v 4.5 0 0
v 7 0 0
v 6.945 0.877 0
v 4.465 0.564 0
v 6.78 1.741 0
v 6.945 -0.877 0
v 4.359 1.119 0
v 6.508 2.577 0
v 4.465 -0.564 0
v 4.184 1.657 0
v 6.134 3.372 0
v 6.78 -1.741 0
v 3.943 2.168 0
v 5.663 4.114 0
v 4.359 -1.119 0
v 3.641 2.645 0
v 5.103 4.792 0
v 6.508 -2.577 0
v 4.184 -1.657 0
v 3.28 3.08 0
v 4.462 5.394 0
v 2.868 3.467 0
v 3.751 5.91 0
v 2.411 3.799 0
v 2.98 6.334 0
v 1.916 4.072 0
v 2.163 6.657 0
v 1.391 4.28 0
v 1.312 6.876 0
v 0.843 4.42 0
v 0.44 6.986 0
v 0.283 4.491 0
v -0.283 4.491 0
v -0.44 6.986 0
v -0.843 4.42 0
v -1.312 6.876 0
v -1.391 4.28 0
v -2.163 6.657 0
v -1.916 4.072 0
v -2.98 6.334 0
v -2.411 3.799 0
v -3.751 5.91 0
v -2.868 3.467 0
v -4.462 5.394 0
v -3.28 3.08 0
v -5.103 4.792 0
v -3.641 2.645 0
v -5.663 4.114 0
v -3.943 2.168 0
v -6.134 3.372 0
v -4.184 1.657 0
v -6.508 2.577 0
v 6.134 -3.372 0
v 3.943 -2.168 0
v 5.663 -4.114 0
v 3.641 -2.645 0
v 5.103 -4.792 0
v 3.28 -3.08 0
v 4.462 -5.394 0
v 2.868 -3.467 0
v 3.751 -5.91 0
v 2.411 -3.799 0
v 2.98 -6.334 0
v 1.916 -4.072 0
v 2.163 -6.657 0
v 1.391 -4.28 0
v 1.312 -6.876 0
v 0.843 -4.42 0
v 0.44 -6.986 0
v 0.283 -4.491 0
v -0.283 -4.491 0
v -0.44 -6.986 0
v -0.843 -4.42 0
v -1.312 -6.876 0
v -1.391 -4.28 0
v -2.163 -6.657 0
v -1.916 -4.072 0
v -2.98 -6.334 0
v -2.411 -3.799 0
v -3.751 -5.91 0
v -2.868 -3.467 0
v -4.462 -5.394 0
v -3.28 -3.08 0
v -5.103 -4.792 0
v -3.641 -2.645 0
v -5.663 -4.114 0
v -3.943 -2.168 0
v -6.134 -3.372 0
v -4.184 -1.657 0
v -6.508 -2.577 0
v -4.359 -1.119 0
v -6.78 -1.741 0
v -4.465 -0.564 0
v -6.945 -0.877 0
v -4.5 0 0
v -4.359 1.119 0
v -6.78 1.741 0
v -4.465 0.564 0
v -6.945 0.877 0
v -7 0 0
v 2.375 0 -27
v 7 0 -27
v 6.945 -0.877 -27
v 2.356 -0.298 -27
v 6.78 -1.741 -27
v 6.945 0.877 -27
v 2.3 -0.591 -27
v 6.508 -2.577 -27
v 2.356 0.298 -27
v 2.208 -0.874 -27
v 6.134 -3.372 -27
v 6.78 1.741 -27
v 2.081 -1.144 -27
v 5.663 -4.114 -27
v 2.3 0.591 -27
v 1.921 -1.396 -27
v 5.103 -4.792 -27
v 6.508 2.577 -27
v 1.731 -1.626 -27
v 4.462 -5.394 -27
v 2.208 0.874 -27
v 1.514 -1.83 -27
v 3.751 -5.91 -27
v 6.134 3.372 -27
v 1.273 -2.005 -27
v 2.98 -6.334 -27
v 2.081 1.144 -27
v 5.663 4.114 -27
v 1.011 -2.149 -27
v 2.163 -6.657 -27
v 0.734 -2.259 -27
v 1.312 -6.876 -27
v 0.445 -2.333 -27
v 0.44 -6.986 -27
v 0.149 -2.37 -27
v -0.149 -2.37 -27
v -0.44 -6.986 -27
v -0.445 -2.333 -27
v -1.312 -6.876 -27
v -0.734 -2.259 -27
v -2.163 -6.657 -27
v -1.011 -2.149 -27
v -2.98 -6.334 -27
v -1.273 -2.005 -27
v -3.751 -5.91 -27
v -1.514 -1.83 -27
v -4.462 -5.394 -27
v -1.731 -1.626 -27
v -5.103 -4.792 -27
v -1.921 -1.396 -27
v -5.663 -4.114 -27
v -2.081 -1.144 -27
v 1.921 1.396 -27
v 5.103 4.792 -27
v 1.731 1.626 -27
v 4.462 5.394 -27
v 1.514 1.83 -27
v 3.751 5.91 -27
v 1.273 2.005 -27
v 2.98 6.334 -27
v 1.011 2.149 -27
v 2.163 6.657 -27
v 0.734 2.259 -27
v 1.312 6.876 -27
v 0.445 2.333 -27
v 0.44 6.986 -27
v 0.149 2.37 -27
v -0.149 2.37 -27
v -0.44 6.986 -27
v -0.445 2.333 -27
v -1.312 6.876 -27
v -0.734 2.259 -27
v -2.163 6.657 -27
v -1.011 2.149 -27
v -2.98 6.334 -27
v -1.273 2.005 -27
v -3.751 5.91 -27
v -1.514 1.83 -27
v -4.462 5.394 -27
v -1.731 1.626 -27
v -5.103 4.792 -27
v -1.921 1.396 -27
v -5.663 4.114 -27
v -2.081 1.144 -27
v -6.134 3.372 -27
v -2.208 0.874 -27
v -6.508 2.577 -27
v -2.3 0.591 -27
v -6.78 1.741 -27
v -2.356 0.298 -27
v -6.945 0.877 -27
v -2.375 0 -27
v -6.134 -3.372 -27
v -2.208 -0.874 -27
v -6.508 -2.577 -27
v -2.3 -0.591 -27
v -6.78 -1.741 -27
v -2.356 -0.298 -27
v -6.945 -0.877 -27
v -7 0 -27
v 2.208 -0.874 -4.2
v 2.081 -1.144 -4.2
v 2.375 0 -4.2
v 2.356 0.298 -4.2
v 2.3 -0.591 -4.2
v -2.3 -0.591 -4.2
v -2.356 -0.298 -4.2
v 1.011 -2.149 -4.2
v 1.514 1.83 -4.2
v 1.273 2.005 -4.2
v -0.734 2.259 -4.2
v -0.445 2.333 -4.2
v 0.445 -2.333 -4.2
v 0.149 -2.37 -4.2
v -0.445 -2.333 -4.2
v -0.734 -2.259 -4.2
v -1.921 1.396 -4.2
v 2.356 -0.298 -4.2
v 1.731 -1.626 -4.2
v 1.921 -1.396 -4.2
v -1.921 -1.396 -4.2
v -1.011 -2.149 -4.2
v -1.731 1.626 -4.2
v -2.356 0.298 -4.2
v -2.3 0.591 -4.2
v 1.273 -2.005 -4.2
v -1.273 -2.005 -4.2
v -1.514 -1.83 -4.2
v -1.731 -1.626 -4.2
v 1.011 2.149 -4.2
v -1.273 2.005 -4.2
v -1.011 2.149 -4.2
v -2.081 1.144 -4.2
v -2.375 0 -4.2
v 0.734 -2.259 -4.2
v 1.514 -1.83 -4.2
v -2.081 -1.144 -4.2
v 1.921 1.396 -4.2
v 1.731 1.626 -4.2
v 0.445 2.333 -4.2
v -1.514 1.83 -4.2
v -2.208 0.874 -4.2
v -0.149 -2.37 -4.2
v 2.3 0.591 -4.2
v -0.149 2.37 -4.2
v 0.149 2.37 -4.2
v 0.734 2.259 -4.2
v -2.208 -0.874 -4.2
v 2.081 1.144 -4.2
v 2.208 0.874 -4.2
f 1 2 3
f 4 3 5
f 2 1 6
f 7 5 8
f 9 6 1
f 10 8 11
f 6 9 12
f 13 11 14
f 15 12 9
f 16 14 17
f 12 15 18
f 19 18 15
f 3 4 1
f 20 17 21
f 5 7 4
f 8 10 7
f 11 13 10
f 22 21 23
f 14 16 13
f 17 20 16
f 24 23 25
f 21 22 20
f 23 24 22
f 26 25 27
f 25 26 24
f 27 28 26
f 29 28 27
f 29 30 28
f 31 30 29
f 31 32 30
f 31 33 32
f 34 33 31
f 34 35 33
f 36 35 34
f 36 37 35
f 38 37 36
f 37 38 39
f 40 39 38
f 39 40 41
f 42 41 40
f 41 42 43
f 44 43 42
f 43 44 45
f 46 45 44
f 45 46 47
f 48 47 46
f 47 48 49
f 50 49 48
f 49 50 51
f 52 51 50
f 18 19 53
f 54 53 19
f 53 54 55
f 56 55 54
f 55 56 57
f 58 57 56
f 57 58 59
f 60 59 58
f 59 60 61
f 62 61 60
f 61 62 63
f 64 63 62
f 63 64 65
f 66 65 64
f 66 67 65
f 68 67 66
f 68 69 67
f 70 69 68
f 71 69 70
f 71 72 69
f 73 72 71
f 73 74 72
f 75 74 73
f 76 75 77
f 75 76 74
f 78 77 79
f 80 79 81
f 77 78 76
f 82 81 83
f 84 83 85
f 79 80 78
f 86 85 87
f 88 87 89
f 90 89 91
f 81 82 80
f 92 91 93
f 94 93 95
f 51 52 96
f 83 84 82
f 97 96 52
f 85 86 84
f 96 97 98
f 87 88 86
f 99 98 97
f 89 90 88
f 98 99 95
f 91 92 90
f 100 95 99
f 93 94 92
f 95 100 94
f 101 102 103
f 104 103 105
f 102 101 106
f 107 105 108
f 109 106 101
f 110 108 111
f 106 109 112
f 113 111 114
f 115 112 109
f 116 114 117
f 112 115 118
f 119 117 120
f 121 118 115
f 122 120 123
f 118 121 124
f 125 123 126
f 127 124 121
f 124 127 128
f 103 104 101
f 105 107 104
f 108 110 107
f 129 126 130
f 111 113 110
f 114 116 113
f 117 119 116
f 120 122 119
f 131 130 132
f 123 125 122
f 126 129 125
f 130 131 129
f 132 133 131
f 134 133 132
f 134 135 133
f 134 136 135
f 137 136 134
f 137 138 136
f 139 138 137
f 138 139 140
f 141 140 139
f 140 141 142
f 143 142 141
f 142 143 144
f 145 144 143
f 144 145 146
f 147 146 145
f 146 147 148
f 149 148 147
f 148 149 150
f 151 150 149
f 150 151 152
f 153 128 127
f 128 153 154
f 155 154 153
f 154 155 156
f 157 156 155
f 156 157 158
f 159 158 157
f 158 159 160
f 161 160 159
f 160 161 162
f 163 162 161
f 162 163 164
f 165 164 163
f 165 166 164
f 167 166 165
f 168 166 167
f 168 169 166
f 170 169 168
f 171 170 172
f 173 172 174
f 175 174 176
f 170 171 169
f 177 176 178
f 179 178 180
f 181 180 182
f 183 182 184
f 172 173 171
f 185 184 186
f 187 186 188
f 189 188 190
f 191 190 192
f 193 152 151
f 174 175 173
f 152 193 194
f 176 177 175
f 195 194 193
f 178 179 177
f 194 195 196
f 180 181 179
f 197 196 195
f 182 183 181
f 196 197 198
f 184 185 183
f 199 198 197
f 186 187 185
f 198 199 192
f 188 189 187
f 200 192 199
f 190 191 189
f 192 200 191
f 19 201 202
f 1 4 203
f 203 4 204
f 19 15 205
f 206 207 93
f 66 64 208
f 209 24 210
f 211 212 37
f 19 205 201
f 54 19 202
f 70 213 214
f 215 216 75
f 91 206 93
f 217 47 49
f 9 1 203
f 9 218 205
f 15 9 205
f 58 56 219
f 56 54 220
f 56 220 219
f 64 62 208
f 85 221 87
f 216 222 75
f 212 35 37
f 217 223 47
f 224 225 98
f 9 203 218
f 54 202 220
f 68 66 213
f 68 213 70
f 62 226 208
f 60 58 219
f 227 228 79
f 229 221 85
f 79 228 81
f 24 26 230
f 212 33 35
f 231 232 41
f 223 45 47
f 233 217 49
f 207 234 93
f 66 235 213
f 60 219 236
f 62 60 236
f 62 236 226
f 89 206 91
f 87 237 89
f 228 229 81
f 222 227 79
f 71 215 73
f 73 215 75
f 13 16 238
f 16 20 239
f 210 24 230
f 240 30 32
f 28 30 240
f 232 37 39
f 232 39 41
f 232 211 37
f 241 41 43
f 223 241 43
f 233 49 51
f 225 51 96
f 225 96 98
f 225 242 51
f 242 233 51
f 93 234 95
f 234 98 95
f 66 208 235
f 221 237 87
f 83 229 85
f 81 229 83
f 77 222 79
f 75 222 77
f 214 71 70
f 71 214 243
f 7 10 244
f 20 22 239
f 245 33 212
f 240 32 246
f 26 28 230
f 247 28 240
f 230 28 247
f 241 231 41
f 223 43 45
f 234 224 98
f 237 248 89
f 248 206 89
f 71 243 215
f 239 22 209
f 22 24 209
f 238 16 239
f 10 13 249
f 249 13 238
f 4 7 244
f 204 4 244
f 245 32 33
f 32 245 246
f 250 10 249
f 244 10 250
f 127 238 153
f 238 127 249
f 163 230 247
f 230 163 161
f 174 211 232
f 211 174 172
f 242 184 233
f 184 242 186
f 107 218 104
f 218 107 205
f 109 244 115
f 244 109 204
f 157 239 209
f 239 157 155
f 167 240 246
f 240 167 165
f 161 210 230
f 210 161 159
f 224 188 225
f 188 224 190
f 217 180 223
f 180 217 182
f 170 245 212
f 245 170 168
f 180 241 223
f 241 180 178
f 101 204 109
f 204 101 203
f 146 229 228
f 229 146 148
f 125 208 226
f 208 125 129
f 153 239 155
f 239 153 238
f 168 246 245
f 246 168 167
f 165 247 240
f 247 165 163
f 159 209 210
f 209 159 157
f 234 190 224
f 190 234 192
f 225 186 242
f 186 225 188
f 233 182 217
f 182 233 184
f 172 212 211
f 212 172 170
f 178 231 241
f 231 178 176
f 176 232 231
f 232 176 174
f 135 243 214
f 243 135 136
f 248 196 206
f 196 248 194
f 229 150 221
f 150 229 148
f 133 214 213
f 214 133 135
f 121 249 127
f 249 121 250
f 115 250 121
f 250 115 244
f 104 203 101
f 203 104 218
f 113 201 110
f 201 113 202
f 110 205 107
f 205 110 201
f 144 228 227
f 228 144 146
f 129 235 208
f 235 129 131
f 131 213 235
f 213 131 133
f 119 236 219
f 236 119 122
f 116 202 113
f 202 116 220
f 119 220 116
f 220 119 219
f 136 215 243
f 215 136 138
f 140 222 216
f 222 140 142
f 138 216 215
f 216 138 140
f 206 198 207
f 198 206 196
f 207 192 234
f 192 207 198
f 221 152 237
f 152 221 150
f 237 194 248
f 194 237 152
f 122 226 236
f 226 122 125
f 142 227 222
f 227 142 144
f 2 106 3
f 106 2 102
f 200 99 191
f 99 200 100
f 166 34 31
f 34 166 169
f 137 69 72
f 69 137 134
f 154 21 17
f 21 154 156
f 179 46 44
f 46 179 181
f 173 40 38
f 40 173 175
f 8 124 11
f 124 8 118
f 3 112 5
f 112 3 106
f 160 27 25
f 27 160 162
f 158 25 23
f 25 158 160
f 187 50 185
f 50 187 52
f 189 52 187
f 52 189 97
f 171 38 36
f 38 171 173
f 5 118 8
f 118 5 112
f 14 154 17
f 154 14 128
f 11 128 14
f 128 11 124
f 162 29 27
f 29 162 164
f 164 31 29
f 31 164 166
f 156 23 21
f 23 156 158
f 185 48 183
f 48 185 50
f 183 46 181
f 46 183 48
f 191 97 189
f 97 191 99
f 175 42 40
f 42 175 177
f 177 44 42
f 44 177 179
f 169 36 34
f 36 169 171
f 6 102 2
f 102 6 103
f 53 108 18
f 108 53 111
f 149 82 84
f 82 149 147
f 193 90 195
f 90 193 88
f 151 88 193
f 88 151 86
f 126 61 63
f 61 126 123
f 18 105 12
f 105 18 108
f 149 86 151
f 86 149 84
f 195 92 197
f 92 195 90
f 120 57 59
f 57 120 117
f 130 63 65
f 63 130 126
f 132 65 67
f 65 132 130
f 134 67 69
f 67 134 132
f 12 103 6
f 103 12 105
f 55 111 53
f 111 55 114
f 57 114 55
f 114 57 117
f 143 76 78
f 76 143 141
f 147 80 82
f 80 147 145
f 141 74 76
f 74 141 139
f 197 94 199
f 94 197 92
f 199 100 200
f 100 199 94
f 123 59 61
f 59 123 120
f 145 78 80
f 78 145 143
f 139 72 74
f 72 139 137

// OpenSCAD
$fn = 50;


difference() {
	union() {
		translate(v = [0, 0, -27.0000000000]) {
			cylinder(h = 27, r = 7.0000000000);
		}
		cylinder(h = 0, r = 10.0000000000);
	}
	union() {
		translate(v = [0, 0, 0]) {
			rotate(a = [0, 0, 0]) {
				difference() {
					union() {
						#translate(v = [0, 0, -27.0000000000]) {
							cylinder(h = 27, r = 2.2500000000);
						}
						#translate(v = [0, 0, -4.2000000000]) {
							cylinder(h = 4.2000000000, r1 = 2.3750000000, r2 = 4.5000000000);
						}
						#translate(v = [0, 0, -27.0000000000]) {
							cylinder(h = 27, r = 2.3750000000);
						}
						#translate(v = [0, 0, -27.0000000000]) {
							cylinder(h = 27, r = 2.2500000000);
						}
					}
					union();
				}
			}
		}
	}
}
